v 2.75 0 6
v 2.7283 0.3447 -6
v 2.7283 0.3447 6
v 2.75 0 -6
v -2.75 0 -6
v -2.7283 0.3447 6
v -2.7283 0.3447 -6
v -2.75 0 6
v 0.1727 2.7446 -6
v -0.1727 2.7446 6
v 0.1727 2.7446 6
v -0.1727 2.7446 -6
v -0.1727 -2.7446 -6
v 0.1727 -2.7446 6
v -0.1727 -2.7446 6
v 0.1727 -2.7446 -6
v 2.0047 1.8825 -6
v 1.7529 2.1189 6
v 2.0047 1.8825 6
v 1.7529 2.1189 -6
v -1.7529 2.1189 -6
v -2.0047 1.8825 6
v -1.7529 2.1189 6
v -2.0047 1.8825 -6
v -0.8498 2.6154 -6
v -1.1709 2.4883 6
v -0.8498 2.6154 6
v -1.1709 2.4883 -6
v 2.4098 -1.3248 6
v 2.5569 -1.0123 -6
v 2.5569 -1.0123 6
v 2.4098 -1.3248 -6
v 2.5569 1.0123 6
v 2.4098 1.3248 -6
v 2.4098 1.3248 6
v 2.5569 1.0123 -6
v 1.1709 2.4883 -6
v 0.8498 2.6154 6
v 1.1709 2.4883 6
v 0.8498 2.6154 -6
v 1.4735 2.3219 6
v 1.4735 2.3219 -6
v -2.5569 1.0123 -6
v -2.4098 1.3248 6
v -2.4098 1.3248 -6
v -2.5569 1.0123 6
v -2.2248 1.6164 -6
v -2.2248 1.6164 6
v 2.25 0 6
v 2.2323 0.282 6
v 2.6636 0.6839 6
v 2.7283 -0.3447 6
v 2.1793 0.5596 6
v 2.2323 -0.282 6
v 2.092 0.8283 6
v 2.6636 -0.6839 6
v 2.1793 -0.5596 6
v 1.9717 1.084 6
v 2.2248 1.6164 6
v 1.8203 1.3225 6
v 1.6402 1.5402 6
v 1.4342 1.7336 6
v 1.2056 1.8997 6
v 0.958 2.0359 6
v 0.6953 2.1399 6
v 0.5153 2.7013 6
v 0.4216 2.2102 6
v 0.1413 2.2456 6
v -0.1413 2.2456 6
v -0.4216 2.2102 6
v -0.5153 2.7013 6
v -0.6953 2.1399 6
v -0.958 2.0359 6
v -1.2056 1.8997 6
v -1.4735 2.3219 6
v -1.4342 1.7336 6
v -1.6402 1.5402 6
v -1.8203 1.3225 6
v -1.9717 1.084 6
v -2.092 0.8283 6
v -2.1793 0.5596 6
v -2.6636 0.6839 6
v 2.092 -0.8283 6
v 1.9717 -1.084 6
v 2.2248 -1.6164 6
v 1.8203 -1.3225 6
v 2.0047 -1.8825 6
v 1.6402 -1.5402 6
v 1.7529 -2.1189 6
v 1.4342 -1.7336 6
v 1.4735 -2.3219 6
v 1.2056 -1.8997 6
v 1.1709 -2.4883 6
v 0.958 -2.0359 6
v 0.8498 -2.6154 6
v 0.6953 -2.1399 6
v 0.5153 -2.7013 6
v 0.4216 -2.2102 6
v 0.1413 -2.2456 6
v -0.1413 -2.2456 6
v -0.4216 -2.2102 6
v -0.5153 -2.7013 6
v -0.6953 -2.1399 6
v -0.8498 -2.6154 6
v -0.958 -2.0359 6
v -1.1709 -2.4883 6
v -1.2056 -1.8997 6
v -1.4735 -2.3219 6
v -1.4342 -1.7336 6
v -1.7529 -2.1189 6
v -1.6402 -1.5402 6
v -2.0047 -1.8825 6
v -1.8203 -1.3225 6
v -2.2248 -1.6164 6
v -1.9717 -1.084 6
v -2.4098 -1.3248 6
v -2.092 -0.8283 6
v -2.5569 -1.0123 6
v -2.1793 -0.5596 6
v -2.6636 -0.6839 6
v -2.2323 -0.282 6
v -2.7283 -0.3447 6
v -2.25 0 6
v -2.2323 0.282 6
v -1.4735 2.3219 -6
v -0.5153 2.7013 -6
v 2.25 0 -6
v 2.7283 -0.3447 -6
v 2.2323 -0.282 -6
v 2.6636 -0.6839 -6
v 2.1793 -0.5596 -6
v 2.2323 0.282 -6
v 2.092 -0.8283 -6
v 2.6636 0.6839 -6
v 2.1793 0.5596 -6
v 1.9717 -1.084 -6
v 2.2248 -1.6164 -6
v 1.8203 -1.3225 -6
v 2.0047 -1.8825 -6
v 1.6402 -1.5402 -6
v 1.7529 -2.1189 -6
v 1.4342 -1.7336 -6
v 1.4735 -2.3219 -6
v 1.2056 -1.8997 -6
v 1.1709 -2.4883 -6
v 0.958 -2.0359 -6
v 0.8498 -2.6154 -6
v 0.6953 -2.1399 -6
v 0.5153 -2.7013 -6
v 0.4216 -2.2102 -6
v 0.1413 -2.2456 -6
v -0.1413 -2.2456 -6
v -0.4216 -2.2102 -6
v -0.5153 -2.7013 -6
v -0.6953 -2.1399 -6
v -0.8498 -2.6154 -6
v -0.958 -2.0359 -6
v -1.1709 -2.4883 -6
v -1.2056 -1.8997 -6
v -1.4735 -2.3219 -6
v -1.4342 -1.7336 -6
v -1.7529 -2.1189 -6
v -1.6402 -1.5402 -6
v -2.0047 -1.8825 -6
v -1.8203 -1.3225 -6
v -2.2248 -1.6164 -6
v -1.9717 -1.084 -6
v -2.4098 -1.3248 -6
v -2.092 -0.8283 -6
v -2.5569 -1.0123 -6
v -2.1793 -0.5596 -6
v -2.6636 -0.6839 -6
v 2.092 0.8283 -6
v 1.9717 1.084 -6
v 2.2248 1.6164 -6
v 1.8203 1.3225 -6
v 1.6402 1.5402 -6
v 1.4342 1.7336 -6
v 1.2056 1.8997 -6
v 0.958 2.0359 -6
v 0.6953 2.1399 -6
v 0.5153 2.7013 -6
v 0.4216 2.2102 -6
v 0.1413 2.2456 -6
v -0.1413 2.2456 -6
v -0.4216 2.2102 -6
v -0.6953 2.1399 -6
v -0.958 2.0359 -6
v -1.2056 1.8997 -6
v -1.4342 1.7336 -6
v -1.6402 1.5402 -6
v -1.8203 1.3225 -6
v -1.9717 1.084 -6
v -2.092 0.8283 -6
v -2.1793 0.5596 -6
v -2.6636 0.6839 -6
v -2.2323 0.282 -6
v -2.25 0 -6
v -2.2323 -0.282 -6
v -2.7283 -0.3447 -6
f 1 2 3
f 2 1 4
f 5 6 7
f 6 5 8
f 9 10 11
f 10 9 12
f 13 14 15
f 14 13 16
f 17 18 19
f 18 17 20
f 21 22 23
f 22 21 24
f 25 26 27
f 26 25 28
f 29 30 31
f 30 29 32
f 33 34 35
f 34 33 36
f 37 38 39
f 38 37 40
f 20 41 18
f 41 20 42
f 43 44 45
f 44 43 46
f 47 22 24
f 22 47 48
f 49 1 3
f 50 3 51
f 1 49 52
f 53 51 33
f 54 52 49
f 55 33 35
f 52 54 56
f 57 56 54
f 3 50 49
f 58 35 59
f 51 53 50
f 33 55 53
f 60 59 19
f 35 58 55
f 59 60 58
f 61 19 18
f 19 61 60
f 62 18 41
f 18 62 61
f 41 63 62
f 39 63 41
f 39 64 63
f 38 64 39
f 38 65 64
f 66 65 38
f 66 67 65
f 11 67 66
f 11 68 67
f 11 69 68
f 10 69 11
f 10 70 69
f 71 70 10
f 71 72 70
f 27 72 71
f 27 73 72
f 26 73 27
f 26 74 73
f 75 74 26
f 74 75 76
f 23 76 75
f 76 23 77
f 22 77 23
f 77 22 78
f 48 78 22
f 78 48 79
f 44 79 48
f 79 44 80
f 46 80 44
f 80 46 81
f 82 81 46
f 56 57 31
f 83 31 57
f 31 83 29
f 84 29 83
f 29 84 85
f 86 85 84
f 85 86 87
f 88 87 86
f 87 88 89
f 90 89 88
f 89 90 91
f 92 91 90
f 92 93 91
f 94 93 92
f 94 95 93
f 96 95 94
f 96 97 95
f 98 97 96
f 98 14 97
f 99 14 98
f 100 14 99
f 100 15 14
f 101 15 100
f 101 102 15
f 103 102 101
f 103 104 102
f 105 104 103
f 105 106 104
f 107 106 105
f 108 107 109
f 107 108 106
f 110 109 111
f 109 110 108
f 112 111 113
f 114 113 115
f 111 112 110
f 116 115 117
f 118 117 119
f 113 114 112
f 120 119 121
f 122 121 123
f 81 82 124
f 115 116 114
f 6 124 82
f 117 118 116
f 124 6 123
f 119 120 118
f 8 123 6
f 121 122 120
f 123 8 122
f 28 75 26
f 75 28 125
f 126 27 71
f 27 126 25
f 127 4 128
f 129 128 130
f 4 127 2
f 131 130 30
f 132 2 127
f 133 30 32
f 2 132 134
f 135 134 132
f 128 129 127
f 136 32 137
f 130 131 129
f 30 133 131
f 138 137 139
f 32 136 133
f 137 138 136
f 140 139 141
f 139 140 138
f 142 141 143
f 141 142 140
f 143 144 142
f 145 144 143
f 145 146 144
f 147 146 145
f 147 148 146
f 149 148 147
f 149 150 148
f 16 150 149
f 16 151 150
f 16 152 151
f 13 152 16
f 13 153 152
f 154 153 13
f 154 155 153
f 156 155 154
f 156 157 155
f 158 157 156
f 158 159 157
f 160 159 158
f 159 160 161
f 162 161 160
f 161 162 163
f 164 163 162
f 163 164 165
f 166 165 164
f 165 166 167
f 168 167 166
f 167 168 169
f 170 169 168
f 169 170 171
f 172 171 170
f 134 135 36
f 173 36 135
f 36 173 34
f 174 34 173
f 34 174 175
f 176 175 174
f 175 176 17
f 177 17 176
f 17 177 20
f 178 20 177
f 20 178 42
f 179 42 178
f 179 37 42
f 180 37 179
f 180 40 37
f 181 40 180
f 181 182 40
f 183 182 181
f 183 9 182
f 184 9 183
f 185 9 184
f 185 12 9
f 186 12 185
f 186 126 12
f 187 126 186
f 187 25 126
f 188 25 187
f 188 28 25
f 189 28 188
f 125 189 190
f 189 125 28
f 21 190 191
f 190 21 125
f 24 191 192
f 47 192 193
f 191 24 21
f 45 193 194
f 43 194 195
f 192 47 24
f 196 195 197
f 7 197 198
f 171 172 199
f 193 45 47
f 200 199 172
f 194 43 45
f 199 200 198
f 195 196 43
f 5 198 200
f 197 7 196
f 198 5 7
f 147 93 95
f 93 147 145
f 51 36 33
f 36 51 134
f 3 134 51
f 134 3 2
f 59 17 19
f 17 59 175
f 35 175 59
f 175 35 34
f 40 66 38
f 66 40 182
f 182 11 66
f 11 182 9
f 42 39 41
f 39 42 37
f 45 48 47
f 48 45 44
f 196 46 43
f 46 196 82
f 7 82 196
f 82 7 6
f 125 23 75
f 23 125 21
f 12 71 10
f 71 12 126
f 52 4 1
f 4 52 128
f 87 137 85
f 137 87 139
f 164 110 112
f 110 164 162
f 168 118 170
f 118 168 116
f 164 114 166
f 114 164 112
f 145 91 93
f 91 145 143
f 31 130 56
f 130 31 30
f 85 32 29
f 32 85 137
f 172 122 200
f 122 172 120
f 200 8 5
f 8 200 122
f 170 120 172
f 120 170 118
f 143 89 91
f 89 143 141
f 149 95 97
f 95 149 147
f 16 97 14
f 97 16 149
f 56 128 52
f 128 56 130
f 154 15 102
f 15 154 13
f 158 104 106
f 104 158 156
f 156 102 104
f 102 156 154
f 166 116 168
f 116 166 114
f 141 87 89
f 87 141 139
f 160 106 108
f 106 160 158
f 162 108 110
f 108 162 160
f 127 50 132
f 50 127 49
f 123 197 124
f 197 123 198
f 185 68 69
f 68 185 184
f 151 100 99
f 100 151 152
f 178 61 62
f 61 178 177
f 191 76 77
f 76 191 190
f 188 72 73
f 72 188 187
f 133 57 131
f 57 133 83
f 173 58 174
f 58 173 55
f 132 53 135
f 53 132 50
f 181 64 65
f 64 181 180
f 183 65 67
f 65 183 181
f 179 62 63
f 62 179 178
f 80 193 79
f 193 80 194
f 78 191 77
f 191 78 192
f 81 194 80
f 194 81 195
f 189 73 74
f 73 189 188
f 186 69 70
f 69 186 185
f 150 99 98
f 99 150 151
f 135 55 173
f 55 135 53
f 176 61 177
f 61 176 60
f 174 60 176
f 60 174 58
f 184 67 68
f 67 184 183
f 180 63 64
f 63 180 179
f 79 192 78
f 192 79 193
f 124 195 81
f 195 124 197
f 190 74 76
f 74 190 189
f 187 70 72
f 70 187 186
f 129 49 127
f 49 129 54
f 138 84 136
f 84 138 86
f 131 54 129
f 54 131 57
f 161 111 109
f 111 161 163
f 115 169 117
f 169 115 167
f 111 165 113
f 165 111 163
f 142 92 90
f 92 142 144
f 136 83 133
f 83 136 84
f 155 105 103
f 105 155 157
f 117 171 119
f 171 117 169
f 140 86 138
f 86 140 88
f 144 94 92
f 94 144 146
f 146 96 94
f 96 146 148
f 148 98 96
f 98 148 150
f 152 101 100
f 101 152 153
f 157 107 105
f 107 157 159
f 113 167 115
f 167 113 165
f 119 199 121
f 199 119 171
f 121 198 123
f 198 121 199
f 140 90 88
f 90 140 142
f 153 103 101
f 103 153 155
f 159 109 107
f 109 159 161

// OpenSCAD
$fn = 50;


difference() {
	union() {
		translate(v = [0, 0, -6.0000000000]) {
			cylinder(h = 12, r = 2.7500000000);
		}
	}
	union() {
		translate(v = [0, 0, -100.0000000000]) {
			cylinder(h = 200, r = 2.2500000000);
		}
	}
}
